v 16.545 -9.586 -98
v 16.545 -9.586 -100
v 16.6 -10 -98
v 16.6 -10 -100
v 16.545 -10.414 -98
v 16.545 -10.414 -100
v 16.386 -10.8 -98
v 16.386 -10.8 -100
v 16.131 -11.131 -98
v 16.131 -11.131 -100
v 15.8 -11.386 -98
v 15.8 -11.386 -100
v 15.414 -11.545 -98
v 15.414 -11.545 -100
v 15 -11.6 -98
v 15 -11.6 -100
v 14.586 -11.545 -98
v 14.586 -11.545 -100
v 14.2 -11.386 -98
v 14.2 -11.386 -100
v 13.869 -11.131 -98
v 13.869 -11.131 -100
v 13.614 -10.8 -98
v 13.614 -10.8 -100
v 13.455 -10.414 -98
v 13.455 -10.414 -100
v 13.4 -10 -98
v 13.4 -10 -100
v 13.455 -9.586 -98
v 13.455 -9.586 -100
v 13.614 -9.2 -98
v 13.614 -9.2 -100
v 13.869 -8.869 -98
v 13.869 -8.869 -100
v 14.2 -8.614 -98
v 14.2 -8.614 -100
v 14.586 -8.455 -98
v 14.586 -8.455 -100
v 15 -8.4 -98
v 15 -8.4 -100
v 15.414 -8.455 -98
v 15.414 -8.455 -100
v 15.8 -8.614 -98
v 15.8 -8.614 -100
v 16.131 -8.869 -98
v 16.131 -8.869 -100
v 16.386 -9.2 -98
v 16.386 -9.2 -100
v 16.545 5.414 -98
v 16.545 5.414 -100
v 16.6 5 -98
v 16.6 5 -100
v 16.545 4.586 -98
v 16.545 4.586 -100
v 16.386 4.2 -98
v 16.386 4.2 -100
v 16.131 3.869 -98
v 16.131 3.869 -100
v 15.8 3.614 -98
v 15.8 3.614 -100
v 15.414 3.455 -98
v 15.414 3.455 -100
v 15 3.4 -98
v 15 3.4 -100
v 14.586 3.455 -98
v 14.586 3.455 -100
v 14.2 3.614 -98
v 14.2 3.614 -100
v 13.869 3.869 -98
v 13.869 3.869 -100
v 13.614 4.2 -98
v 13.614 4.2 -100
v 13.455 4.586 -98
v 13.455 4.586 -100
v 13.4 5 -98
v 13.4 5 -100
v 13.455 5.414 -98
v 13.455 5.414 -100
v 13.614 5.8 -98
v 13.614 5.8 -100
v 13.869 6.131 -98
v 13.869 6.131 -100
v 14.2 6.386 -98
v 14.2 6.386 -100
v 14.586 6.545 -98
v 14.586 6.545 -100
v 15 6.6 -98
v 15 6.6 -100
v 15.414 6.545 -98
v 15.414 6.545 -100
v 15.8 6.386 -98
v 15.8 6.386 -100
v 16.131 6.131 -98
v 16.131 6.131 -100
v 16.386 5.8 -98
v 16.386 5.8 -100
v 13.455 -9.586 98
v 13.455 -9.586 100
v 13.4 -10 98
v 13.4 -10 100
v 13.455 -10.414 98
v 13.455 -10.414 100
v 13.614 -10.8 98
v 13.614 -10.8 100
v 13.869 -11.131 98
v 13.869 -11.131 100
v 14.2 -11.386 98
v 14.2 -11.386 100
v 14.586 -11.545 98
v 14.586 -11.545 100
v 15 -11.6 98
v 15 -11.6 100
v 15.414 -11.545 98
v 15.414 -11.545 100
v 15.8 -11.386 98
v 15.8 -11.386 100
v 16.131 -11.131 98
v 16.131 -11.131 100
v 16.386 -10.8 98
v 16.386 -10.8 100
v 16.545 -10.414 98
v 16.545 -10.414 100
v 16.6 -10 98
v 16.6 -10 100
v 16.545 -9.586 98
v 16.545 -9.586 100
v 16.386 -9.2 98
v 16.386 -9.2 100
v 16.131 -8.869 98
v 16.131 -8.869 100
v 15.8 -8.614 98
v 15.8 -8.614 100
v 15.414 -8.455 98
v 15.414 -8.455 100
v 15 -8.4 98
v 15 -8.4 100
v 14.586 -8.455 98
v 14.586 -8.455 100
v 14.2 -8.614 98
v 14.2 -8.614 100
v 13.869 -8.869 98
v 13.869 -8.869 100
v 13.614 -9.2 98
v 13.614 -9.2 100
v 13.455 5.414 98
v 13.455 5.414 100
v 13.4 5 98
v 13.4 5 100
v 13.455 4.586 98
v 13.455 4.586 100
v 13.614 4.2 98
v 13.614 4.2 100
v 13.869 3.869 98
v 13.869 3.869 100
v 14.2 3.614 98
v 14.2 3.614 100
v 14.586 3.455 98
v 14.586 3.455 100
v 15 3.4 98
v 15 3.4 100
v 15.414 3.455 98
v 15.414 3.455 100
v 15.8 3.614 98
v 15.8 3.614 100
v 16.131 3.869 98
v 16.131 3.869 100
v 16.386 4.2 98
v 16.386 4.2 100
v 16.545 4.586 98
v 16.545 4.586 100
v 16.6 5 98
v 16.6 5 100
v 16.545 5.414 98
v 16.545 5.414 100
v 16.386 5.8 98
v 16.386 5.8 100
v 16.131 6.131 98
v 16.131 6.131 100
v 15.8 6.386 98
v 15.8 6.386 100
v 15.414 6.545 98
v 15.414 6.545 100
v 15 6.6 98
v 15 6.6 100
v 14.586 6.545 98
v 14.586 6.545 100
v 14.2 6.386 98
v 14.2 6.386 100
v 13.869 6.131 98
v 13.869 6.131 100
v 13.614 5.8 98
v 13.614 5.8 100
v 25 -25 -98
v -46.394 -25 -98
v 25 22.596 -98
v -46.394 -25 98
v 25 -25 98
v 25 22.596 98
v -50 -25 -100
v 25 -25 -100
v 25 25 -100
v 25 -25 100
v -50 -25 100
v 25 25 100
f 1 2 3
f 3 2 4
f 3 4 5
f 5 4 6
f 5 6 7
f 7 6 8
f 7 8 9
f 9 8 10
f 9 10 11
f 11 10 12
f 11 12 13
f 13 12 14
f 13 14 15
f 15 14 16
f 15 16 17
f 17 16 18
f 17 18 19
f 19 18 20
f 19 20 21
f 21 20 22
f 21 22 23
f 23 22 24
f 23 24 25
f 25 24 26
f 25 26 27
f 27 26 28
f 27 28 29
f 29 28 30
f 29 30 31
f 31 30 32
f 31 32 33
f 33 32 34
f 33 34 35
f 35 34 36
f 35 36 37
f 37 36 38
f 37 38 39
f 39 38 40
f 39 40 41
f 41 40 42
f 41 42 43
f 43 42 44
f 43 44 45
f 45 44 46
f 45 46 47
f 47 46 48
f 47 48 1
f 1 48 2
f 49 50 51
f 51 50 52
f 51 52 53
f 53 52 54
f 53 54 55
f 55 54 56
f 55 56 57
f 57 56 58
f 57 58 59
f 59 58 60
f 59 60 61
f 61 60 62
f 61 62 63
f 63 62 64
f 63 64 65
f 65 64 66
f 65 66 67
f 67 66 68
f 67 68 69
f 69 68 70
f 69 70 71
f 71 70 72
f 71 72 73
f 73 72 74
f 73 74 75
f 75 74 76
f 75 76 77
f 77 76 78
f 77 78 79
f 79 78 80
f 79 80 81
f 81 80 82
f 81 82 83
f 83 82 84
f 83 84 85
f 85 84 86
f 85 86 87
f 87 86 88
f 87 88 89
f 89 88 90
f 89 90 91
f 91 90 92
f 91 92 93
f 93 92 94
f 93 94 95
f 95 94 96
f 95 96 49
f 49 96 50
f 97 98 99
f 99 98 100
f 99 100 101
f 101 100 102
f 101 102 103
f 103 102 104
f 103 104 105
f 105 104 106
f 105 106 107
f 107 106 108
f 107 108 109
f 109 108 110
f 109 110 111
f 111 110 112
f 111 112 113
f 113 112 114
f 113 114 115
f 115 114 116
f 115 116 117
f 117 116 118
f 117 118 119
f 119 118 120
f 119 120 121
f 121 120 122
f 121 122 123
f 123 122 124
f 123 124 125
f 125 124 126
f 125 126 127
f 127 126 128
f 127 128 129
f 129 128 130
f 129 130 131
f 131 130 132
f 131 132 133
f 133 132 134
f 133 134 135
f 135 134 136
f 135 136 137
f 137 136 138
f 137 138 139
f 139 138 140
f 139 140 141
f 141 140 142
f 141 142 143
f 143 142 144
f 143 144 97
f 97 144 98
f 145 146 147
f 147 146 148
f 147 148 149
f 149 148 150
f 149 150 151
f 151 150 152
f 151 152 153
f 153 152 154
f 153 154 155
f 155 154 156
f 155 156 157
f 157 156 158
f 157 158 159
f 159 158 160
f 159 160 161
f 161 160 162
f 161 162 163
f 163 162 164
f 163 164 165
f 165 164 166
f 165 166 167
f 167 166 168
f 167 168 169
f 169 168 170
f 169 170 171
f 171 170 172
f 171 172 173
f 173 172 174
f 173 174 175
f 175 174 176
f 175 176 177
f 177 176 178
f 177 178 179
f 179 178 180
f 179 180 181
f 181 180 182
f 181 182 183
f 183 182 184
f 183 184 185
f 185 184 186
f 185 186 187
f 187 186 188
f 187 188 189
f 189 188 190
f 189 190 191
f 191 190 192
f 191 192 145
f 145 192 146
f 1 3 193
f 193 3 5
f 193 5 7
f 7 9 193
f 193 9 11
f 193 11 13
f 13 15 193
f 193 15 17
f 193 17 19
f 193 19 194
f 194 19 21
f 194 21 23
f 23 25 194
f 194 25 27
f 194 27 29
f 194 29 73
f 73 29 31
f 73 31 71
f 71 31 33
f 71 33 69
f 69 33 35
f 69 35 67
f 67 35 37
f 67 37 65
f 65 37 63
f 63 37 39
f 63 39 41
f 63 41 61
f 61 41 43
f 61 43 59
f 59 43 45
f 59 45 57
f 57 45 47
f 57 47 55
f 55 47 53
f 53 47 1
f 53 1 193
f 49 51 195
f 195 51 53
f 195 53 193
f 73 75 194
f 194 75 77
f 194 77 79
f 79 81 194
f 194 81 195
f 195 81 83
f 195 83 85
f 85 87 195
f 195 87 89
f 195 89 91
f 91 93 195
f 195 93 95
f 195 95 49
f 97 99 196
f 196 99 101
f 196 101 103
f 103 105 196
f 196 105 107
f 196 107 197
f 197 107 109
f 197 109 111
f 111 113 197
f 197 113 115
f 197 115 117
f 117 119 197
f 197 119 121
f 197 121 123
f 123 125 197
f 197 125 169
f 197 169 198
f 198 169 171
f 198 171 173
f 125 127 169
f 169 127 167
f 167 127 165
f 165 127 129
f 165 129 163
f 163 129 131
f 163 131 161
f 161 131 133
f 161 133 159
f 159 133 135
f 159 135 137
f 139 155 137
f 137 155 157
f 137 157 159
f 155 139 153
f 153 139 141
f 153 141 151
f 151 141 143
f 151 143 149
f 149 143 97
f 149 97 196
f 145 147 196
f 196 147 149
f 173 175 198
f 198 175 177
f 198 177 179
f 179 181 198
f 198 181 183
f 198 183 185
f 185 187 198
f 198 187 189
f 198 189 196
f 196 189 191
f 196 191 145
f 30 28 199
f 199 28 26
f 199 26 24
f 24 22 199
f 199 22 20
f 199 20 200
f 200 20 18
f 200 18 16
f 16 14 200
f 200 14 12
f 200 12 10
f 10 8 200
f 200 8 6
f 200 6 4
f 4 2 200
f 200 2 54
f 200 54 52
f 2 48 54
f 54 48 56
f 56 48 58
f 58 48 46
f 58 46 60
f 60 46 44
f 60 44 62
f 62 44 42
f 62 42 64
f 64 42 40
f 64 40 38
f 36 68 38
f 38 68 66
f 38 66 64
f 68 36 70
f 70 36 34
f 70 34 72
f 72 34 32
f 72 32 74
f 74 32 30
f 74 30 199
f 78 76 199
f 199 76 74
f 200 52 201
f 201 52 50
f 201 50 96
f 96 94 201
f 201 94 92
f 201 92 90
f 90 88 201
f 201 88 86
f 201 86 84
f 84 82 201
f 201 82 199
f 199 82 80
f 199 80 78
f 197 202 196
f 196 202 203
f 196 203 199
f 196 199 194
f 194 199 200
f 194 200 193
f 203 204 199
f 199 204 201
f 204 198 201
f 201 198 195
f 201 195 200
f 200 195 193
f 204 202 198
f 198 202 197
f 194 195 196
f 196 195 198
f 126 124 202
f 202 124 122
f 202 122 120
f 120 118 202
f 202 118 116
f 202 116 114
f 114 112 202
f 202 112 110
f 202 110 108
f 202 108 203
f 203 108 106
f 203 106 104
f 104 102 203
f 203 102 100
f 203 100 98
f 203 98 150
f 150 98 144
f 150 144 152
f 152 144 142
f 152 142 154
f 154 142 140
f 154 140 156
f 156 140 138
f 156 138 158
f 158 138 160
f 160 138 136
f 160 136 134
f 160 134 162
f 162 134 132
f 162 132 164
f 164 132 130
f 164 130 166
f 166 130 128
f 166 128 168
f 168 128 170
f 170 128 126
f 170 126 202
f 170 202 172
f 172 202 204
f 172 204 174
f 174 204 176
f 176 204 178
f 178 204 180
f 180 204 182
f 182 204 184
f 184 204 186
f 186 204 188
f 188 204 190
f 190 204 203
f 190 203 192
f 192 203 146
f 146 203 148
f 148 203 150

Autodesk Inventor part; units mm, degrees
ref_plane "YZ Plane" through (0, 0, 0) normal (1, 0, 0) x (0, 1, 0)
ref_plane "XZ Plane" through (0, 0, 0) normal (0, 1, 0) x (-1, 0, 0)
ref_plane "XY Plane" through (0, 0, 0) normal (0, 0, 1) x (1, 0, 0)
sketch "Skizze1" plane through (0, 0, 0) normal (0, 0, 1) x (1, 0, 0)
  line L0 (-50, -25) -> (25, 25)
  line L1 (25, 25) -> (25, -25)
  line L2 (25, -25) -> (-50, -25)
  line L3 (0, 35) -> (0, -35) projected
  line L4 (-65, 0) -> (40, 0) projected
  line L5 (23, 21.263) -> (-43.3944, -23)
  line L6 (-43.3944, -23) -> (23, -23)
  line L7 (23, -23) -> (23, 21.263)
  line L8 (23, -23) -> (25, -23)
  line L9 (25, 22.5963) -> (23, 21.263)
  line L10 (-43.3944, -23) -> (-46.3944, -25)
  point P0 (0, 0)
  dimension "d0" = 50
  dimension "d1" = 75
  dimension "d2" = 25
  dimension "d3" = 25
  dimension "d4" = 2
extrude "Extrusion2" add sketch "Skizze1" along normal mid plane 200 contours L0 L4 L5 L10 L2 | L0 L3 L5 L4 | L0 L1 L9 L5 L3
sketch "Skizze2" plane through (0, 0, 100) normal (0, 0, 1) x (1, 0, 0)
  line L0 (-46.3944, -25) -> (25, 22.5963) projected
  line L1 (-46.3944, -25) -> (25, -25)
  line L2 (25, -25) -> (25, 22.5963)
  line L3 (25, 22.5963) -> (-46.3944, -25)
  line L4 (25, 25) -> (-50, -25) projected
  point P0 (0, 0)
extrude "Extrusion3" add sketch "Skizze2" against normal blind 2
sketch "Skizze3" plane through (0, 0, -100) normal (0, 0, -1) x (-1, 0, 0)
  line L0 (-25, 22.5963) -> (46.3944, -25) projected
  line L1 (46.3944, -25) -> (50, -25) projected
  line L2 (-25, 22.5963) -> (46.3944, -25)
  line L3 (46.3944, -25) -> (-25, -25)
  line L4 (-25, -25) -> (-25, 22.5963)
  line L5 (-25, -25) -> (-25, 25) projected
  point P0 (0, 0)
extrude "Extrusion4" add sketch "Skizze3" against normal blind 2
sketch "Skizze4" plane through (0, 0, 100) normal (0, 0, 1) x (1, 0, 0)
  circle A0 centre (15, 5) radius 1.6
  circle A1 centre (15, -10) radius 1.6
  line L0 (-50, -25) -> (25, -25) projected
  line L1 (25, -25) -> (25, 25) projected
  point P0 (0, 0)
  dimension "d13" = 3.2
  dimension "d14" = 3.2
  dimension "d15" = 15
  dimension "d16" = 15
  dimension "d17" = 10
  dimension "d18" = 10
extrude "Extrusion5" cut sketch "Skizze4" against normal up to surface (2 mm away)
sketch "Skizze5" plane through (0, 0, -100) normal (0, 0, -1) x (-1, 0, 0)
  circle A0 centre (-15, 5) radius 1.6
  circle A1 centre (-15, -10) radius 1.6
  line L0 (-25, 25) -> (-25, -25) projected
  line L1 (-25, -25) -> (50, -25) projected
  point P0 (0, 0)
  dimension "d21" = 3.2
  dimension "d22" = 3.2
  dimension "d23" = 10
  dimension "d24" = 10
  dimension "d25" = 15
  dimension "d26" = 15
extrude "Extrusion6" cut sketch "Skizze5" against normal up to surface (2 mm away)
properties part number "_3D-Druck"
